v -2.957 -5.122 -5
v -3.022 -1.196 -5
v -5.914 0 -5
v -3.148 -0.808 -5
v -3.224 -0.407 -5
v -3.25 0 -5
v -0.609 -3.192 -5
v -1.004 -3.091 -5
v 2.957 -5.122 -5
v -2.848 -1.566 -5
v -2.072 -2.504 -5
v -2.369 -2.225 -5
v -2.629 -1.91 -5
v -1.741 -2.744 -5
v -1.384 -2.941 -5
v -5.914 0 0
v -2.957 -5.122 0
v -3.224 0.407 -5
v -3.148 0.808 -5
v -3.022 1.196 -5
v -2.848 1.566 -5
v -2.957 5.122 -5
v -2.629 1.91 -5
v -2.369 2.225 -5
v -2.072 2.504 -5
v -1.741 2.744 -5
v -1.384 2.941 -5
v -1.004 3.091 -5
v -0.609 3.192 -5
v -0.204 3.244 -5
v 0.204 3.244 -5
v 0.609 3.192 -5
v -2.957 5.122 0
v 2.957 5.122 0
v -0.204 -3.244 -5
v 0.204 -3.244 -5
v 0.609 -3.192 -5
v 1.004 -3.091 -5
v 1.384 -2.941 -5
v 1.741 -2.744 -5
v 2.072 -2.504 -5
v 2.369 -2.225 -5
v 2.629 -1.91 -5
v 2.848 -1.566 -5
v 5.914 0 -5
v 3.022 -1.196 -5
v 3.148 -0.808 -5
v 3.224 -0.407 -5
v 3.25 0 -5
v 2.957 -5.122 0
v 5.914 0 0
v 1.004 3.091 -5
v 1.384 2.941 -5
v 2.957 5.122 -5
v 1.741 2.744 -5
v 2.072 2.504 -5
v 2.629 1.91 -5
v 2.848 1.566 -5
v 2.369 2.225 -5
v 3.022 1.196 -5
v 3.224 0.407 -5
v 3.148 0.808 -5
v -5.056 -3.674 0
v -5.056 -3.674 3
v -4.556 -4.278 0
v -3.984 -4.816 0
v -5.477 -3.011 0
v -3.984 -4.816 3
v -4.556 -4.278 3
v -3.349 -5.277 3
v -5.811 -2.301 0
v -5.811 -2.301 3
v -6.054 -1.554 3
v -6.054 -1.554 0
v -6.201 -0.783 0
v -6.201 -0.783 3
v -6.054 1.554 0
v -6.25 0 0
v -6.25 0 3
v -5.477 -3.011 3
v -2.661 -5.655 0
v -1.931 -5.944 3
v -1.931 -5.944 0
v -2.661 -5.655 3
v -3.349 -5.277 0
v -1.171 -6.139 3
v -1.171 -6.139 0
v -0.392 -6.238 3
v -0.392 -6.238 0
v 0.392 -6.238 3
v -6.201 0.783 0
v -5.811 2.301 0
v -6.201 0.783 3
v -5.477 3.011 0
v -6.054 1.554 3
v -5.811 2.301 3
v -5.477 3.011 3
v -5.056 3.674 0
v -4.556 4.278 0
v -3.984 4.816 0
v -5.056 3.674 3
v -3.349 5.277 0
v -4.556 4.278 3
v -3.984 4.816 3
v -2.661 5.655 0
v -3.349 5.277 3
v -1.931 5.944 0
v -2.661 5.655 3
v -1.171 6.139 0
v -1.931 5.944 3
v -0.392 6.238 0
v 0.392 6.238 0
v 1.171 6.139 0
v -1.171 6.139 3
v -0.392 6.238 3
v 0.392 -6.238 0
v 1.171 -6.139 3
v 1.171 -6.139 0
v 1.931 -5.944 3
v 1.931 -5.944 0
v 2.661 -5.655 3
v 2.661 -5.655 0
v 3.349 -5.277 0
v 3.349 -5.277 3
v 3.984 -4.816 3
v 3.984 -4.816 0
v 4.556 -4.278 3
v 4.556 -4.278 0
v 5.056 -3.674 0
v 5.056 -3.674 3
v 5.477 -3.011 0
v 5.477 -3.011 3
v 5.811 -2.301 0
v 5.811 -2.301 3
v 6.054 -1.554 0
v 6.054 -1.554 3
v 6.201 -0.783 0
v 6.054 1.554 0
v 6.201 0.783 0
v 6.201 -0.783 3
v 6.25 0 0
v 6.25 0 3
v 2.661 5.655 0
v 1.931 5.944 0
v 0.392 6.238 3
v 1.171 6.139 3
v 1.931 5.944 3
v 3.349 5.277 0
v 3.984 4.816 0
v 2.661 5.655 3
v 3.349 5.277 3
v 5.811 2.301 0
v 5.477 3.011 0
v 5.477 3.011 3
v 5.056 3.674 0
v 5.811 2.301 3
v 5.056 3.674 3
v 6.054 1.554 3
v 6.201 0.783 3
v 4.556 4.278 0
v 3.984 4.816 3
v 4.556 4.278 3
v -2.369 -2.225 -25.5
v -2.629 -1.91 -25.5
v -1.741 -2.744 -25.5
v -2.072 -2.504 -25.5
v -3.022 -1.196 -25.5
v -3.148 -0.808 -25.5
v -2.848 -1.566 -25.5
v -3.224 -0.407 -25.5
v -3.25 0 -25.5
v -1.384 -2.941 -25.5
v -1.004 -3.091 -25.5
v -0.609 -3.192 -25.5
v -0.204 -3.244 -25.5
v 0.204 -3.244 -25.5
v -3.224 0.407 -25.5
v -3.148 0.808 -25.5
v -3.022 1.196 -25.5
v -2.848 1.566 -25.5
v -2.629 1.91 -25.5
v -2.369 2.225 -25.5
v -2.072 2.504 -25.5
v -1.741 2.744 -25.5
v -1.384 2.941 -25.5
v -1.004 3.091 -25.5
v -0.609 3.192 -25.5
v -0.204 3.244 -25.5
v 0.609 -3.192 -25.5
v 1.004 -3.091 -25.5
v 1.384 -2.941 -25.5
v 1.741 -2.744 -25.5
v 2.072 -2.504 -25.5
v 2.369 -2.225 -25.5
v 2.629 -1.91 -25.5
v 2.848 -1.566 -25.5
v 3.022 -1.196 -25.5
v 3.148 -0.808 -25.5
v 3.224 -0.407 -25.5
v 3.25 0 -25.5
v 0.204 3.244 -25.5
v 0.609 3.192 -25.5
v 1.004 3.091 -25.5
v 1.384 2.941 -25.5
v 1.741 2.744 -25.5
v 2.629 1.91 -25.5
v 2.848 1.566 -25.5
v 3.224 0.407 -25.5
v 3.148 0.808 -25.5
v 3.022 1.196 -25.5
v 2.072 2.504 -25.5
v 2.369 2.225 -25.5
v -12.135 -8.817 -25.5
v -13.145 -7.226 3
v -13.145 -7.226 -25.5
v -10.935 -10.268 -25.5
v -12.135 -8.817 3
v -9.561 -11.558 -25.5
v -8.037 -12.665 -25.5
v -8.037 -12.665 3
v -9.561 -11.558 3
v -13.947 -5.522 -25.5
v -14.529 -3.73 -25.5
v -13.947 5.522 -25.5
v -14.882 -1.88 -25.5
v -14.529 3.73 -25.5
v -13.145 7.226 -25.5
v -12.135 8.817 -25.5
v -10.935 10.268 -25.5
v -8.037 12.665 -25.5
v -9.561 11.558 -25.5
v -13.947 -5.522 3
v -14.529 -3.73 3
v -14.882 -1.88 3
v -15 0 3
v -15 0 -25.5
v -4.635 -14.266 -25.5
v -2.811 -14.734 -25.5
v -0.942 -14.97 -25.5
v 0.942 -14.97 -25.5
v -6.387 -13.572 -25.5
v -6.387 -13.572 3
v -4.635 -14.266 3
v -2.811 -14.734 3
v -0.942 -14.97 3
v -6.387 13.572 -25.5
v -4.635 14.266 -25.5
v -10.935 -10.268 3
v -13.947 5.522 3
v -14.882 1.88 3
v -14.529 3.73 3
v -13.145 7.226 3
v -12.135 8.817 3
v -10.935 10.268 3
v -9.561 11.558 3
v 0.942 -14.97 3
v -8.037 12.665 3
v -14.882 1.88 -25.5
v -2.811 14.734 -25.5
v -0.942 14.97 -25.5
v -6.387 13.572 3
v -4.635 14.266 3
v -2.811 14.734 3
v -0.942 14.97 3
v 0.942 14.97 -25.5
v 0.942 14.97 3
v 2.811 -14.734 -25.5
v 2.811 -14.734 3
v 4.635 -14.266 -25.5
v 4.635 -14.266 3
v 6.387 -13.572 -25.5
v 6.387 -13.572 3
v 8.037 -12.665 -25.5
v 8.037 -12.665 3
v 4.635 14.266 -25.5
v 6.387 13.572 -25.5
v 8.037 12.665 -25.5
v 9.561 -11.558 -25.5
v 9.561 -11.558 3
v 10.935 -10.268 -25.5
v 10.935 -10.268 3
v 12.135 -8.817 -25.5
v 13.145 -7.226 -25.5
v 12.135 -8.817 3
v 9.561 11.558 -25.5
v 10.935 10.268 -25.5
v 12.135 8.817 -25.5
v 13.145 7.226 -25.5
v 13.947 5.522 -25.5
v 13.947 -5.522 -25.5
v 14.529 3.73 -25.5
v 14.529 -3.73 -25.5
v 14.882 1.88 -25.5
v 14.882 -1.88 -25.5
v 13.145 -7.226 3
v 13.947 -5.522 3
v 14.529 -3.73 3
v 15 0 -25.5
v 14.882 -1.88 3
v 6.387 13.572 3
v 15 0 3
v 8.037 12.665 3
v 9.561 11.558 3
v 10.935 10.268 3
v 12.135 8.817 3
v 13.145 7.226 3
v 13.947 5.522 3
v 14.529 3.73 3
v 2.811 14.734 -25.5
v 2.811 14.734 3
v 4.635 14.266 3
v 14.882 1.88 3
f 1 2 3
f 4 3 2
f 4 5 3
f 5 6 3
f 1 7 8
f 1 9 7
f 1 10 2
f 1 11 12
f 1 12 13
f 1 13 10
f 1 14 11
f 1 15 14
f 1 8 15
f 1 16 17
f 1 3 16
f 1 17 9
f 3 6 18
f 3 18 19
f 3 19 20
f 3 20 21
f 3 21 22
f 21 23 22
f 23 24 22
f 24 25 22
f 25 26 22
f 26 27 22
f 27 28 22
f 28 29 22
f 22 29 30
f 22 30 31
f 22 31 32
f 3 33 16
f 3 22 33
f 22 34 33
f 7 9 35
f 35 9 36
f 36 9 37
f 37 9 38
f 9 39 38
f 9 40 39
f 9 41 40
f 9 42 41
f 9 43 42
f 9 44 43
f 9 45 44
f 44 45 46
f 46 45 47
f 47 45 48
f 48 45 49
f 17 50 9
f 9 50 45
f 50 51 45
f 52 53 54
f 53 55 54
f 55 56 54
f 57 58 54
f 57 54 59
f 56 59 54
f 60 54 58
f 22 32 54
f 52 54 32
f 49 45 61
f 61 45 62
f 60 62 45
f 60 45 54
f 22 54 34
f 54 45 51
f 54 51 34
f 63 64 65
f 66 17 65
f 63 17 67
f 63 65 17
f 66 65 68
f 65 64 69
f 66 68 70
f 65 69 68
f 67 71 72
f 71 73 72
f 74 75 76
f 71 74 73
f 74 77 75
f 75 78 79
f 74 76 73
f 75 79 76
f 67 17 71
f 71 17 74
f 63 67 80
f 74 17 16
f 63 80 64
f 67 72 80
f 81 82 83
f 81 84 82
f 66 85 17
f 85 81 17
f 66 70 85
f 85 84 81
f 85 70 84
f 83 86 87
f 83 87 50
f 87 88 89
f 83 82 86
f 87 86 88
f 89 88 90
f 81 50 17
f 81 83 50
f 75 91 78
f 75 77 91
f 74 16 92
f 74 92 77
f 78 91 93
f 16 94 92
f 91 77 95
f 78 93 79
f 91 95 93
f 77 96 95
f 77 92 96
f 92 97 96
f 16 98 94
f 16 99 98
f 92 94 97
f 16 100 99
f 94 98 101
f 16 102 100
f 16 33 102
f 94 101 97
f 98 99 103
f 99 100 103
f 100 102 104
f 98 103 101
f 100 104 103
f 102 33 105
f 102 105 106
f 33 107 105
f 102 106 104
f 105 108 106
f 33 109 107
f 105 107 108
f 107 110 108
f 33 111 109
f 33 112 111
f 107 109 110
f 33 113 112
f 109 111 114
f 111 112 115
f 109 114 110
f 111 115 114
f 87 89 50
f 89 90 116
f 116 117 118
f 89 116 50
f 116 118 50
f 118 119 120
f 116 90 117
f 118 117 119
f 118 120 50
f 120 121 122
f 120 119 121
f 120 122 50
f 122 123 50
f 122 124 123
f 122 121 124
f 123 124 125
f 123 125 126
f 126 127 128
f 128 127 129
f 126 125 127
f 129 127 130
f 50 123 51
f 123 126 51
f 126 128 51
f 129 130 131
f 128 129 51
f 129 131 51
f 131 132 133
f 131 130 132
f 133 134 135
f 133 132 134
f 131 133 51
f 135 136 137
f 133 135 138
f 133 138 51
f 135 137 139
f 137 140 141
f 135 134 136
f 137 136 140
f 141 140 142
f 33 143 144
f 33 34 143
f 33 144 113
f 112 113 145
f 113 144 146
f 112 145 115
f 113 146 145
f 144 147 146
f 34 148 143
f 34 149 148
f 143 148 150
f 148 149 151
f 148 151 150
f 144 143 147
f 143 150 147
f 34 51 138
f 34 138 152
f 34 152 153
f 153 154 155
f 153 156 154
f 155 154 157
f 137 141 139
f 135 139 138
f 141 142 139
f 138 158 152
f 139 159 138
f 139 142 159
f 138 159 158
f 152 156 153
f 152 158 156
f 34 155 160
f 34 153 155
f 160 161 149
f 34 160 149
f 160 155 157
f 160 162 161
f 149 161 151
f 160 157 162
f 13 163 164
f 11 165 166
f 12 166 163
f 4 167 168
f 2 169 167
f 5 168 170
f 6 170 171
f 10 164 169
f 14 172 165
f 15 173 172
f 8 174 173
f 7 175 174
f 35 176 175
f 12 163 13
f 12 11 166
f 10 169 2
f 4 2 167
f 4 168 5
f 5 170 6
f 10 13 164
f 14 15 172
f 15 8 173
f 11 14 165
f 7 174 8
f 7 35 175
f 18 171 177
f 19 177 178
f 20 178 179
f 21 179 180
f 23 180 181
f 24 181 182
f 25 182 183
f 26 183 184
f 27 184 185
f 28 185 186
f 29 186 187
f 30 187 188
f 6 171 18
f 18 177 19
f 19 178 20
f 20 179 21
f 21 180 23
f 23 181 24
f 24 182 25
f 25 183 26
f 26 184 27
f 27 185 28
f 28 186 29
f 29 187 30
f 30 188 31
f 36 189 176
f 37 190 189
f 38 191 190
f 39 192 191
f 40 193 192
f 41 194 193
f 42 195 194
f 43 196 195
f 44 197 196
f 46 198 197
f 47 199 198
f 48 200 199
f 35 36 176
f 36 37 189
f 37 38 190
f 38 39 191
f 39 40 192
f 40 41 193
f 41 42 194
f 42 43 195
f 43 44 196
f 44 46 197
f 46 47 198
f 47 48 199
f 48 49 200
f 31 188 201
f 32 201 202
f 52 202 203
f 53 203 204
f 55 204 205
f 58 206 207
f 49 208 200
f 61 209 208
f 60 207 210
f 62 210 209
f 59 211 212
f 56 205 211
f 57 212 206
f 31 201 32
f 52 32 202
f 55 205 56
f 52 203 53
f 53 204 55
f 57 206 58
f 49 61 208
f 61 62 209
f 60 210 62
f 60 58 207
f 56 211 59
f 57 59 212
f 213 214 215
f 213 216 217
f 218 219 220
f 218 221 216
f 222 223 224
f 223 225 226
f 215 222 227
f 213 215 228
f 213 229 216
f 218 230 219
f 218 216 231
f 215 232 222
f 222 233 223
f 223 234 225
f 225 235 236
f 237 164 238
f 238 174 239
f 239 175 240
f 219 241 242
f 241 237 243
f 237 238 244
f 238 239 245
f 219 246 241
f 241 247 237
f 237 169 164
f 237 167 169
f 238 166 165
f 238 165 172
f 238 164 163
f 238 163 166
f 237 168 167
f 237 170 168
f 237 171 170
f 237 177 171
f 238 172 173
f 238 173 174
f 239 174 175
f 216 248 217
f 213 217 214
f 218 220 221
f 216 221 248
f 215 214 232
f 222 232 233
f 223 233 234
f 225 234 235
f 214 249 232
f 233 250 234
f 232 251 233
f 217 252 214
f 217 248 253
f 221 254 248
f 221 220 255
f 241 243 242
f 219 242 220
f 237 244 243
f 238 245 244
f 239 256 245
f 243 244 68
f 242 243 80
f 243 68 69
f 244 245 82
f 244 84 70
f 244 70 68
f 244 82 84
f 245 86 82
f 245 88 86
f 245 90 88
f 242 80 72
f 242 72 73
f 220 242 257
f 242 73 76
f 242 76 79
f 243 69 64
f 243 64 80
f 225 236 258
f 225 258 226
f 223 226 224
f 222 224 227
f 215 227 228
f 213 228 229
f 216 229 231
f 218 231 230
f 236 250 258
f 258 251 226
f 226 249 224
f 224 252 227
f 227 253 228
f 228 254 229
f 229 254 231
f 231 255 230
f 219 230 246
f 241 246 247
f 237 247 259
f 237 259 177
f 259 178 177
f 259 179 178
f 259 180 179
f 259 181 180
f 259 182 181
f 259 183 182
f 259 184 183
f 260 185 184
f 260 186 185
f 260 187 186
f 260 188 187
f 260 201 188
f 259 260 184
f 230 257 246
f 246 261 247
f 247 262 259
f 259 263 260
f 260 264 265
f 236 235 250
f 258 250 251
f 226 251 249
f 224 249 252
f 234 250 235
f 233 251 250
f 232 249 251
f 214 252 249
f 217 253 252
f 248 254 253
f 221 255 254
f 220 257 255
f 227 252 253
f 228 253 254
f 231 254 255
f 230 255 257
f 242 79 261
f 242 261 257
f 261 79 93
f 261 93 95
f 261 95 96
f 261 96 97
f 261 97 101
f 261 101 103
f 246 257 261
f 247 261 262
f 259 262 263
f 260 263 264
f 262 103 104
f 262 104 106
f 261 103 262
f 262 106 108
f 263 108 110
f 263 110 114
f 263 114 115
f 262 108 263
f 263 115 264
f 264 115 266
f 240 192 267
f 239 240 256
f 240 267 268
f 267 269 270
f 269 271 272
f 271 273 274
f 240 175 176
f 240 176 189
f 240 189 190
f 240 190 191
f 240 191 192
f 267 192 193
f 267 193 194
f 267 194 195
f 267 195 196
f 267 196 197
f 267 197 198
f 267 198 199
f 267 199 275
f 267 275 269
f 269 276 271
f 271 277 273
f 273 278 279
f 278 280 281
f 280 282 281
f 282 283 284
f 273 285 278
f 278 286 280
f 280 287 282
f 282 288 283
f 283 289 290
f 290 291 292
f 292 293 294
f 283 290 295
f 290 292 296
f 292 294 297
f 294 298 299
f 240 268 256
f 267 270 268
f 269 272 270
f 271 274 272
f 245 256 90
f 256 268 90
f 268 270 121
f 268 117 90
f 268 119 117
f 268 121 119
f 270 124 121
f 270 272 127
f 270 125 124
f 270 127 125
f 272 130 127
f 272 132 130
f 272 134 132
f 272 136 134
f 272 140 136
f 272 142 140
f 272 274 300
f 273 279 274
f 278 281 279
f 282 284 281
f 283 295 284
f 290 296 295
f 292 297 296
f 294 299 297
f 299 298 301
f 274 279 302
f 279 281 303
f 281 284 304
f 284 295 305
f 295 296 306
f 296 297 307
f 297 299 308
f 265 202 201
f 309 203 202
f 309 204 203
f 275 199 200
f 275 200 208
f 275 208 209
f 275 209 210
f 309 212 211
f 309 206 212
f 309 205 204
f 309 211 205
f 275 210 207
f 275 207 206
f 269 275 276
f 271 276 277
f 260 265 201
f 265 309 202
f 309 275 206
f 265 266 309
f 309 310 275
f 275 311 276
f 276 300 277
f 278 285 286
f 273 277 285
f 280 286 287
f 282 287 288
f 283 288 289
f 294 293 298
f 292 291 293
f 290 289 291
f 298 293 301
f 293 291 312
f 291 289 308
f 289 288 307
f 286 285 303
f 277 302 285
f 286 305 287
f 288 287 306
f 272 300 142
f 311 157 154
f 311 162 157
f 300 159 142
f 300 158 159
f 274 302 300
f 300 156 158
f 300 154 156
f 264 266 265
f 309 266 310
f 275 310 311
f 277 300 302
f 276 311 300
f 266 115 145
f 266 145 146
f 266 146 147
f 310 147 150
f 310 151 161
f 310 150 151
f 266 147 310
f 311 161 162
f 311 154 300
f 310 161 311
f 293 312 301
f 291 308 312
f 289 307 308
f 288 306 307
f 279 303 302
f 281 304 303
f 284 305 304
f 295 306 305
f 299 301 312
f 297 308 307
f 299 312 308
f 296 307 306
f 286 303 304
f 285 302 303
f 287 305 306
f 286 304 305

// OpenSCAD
$fn = 50;

difference() {
	union() {
		translate(v = [0, 0, -25.5]) {
			cylinder(h = 28.5, r = 15.0);
		}
	}
	union() {
		translate(v = [0, 0, 0]) {
			rotate(a = [0, 0, 0]) {
				difference() {
					union() {
						translate(v = [0, 0, -5]) {
							linear_extrude(height = 5) {
								polygon(points = [[5.914249999999999, 0.0], [2.957125, 5.1218907443321156], [-2.9571249999999982, 5.1218907443321156], [-5.914249999999999, 7.242867331857232e-16], [-2.9571250000000022, -5.121890744332115], [2.9571249999999956, -5.121890744332118]]);
							}
						}
					}
					union();
				}
			}
		}
		#cylinder(h = 3, r = 6.25);
		#translate(v = [0, 0, -100.0]) {
			cylinder(h = 200, r = 3.25);
		}
	}
}
